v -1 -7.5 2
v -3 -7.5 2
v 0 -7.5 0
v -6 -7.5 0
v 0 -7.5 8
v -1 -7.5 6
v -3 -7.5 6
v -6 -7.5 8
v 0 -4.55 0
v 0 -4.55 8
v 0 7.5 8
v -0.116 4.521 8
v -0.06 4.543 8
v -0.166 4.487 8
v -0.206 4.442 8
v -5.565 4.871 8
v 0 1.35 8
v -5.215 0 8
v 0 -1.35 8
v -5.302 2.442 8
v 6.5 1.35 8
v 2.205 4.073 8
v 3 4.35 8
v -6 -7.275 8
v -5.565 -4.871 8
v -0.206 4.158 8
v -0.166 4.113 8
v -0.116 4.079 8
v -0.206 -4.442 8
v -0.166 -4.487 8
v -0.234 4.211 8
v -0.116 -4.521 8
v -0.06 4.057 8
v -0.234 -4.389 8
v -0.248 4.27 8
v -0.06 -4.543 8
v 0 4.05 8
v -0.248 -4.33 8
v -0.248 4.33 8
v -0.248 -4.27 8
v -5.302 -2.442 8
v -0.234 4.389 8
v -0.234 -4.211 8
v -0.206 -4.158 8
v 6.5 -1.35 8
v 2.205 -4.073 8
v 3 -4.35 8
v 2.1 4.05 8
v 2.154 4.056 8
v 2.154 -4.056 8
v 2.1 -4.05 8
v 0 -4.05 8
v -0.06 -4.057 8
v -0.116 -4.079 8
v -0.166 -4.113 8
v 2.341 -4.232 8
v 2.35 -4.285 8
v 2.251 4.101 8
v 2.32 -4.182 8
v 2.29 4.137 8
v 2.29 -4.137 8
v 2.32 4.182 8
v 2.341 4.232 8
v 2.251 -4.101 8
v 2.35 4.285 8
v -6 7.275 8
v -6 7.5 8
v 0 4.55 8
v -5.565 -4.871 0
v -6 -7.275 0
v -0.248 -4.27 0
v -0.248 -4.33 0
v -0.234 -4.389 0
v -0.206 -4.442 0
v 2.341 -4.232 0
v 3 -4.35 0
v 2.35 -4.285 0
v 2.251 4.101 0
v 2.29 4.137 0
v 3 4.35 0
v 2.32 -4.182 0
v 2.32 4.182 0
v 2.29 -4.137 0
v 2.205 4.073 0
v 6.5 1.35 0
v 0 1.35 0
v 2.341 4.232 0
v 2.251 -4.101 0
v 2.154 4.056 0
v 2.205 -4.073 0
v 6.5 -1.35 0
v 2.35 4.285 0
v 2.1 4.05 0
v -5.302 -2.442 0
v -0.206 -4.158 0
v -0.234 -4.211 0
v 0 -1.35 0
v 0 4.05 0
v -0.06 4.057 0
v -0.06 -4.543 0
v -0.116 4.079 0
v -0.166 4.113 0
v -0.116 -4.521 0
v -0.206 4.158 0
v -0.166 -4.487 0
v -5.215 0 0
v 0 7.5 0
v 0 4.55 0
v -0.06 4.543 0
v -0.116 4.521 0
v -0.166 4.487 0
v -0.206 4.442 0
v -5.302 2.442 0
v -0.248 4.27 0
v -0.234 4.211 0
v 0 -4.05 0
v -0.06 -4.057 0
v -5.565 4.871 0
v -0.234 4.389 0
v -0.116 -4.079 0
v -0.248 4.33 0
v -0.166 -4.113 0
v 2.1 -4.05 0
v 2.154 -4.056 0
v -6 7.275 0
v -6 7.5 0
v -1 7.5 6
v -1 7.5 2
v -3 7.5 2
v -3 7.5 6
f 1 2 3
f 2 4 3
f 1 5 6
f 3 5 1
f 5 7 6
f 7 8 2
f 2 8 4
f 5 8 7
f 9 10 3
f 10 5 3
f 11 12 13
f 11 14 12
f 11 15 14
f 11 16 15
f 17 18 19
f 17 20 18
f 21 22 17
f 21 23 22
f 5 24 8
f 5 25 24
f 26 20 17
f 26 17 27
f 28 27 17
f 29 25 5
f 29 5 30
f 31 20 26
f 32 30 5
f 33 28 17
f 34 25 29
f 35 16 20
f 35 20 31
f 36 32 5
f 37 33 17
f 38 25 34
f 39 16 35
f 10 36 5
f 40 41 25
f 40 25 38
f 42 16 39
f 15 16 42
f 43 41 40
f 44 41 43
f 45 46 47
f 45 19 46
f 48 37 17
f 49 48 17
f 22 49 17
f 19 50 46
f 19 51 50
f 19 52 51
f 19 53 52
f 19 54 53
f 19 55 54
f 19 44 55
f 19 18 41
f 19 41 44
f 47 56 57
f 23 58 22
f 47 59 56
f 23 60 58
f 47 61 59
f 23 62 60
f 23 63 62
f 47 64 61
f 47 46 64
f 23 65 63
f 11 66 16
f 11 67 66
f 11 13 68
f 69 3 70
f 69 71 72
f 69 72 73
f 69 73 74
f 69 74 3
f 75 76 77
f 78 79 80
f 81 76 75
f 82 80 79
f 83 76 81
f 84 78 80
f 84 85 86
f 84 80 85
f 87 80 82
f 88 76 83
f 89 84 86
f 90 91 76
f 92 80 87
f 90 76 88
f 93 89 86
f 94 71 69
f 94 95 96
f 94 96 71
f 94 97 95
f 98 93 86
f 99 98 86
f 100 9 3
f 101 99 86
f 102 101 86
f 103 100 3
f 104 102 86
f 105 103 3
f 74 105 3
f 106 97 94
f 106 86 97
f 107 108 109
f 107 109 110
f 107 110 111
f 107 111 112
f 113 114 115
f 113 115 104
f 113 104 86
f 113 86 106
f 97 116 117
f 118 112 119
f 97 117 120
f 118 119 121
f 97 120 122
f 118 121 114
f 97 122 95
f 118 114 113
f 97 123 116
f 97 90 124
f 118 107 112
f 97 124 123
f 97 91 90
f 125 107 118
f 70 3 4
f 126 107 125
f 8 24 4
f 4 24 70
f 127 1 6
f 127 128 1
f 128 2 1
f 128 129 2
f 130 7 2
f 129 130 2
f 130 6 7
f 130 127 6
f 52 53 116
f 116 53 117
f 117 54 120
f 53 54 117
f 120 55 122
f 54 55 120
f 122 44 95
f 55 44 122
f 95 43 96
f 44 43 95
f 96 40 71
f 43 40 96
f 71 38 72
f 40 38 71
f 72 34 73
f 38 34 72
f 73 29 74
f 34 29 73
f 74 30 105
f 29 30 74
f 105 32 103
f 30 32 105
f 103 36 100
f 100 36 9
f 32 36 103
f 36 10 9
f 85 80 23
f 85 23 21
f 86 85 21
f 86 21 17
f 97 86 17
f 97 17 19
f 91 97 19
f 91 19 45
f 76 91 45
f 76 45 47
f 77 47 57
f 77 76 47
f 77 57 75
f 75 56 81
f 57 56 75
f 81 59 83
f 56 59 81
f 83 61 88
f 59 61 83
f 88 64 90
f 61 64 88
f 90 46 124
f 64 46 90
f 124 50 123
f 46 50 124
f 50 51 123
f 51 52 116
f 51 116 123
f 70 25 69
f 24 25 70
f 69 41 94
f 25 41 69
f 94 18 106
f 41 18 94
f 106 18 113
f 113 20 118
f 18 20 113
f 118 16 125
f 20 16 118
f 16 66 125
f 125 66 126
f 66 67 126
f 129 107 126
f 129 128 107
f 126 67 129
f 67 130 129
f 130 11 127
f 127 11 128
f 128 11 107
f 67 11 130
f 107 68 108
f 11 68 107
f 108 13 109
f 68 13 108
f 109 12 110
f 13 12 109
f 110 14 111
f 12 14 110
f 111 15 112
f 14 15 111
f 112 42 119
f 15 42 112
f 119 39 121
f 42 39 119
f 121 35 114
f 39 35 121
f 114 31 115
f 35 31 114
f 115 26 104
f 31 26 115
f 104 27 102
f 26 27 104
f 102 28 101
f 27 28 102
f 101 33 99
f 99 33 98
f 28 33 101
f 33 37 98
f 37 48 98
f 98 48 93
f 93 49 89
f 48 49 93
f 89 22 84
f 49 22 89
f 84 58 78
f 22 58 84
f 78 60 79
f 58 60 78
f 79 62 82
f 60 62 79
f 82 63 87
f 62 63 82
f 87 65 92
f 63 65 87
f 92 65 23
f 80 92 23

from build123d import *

# Parameters (mm, degrees)
PAD_DEPTH       = 8
SKETCH001_W     = 6
SKETCH001_H     = 15
PAD001_DEPTH    = 8
SKETCH002_R     = 34.097943
POCKET_DEPTH    = 8.001
SKETCH003_W     = 2
SKETCH003_H     = 4
POCKET001_DEPTH = 15.001
POCKET002_DEPTH = 8.001


with BuildPart() as part:
    # Sketch → Pad (new body)
    with BuildSketch(Plane.XY):
        Polygon((6.5, 1.35), (0, 1.35), (0, -1.35), (6.5, -1.35), (3, -4.35), (0, -4.05), (-6, -4.05), (-6, 4.05), (0, 4.05), (3, 4.35), align=None)
    extrude(amount=PAD_DEPTH)

    # Sketch001 (on Face12 of Pad) → Pad001 (join)
    with BuildSketch(Plane.XY.offset(8)):
        with Locations((-3, 0)):
            Rectangle(SKETCH001_W, SKETCH001_H)
    extrude(amount=-PAD001_DEPTH)

    # Sketch002 (on Face13 of Pad001) → Pocket (cut, through all)
    with BuildSketch(Plane.XY.offset(8)):
        with Locations((-39.312778, 0)):
            Circle(SKETCH002_R)
    extrude(amount=-POCKET_DEPTH, mode=Mode.SUBTRACT)

    # Sketch003 (on Face15 of Pocket) → Pocket001 (cut, through all)
    with BuildSketch(Plane(origin=(0, 7.5, 0), x_dir=(-1, 0, 0), z_dir=(0, 1, 0))):
        with Locations((2, 4)):
            Rectangle(SKETCH003_W, SKETCH003_H)
    extrude(amount=-POCKET001_DEPTH, mode=Mode.SUBTRACT)

    # Sketch004 (on Face3 of Pocket001) → Pocket002 (cut, through all)
    with BuildSketch(Plane.XY.offset(8)):
        with BuildLine():
            ThreePointArc((0, 4.55), (-0.25, 4.3), (0, 4.05))
            Line((0, 4.05), (2.1, 4.05))
            ThreePointArc((2.1, 4.05), (2.35, 4.3), (2.1, 4.55))
            Line((0, 4.55), (2.1, 4.55))
        make_face()
        with BuildLine():
            ThreePointArc((0, -4.05), (-0.25, -4.3), (0, -4.55))
            Line((0, -4.55), (2.1, -4.55))
            ThreePointArc((2.1, -4.55), (2.35, -4.3), (2.1, -4.05))
            Line((0, -4.05), (2.1, -4.05))
        make_face()
    extrude(amount=-POCKET002_DEPTH, mode=Mode.SUBTRACT)


solid = part.part
